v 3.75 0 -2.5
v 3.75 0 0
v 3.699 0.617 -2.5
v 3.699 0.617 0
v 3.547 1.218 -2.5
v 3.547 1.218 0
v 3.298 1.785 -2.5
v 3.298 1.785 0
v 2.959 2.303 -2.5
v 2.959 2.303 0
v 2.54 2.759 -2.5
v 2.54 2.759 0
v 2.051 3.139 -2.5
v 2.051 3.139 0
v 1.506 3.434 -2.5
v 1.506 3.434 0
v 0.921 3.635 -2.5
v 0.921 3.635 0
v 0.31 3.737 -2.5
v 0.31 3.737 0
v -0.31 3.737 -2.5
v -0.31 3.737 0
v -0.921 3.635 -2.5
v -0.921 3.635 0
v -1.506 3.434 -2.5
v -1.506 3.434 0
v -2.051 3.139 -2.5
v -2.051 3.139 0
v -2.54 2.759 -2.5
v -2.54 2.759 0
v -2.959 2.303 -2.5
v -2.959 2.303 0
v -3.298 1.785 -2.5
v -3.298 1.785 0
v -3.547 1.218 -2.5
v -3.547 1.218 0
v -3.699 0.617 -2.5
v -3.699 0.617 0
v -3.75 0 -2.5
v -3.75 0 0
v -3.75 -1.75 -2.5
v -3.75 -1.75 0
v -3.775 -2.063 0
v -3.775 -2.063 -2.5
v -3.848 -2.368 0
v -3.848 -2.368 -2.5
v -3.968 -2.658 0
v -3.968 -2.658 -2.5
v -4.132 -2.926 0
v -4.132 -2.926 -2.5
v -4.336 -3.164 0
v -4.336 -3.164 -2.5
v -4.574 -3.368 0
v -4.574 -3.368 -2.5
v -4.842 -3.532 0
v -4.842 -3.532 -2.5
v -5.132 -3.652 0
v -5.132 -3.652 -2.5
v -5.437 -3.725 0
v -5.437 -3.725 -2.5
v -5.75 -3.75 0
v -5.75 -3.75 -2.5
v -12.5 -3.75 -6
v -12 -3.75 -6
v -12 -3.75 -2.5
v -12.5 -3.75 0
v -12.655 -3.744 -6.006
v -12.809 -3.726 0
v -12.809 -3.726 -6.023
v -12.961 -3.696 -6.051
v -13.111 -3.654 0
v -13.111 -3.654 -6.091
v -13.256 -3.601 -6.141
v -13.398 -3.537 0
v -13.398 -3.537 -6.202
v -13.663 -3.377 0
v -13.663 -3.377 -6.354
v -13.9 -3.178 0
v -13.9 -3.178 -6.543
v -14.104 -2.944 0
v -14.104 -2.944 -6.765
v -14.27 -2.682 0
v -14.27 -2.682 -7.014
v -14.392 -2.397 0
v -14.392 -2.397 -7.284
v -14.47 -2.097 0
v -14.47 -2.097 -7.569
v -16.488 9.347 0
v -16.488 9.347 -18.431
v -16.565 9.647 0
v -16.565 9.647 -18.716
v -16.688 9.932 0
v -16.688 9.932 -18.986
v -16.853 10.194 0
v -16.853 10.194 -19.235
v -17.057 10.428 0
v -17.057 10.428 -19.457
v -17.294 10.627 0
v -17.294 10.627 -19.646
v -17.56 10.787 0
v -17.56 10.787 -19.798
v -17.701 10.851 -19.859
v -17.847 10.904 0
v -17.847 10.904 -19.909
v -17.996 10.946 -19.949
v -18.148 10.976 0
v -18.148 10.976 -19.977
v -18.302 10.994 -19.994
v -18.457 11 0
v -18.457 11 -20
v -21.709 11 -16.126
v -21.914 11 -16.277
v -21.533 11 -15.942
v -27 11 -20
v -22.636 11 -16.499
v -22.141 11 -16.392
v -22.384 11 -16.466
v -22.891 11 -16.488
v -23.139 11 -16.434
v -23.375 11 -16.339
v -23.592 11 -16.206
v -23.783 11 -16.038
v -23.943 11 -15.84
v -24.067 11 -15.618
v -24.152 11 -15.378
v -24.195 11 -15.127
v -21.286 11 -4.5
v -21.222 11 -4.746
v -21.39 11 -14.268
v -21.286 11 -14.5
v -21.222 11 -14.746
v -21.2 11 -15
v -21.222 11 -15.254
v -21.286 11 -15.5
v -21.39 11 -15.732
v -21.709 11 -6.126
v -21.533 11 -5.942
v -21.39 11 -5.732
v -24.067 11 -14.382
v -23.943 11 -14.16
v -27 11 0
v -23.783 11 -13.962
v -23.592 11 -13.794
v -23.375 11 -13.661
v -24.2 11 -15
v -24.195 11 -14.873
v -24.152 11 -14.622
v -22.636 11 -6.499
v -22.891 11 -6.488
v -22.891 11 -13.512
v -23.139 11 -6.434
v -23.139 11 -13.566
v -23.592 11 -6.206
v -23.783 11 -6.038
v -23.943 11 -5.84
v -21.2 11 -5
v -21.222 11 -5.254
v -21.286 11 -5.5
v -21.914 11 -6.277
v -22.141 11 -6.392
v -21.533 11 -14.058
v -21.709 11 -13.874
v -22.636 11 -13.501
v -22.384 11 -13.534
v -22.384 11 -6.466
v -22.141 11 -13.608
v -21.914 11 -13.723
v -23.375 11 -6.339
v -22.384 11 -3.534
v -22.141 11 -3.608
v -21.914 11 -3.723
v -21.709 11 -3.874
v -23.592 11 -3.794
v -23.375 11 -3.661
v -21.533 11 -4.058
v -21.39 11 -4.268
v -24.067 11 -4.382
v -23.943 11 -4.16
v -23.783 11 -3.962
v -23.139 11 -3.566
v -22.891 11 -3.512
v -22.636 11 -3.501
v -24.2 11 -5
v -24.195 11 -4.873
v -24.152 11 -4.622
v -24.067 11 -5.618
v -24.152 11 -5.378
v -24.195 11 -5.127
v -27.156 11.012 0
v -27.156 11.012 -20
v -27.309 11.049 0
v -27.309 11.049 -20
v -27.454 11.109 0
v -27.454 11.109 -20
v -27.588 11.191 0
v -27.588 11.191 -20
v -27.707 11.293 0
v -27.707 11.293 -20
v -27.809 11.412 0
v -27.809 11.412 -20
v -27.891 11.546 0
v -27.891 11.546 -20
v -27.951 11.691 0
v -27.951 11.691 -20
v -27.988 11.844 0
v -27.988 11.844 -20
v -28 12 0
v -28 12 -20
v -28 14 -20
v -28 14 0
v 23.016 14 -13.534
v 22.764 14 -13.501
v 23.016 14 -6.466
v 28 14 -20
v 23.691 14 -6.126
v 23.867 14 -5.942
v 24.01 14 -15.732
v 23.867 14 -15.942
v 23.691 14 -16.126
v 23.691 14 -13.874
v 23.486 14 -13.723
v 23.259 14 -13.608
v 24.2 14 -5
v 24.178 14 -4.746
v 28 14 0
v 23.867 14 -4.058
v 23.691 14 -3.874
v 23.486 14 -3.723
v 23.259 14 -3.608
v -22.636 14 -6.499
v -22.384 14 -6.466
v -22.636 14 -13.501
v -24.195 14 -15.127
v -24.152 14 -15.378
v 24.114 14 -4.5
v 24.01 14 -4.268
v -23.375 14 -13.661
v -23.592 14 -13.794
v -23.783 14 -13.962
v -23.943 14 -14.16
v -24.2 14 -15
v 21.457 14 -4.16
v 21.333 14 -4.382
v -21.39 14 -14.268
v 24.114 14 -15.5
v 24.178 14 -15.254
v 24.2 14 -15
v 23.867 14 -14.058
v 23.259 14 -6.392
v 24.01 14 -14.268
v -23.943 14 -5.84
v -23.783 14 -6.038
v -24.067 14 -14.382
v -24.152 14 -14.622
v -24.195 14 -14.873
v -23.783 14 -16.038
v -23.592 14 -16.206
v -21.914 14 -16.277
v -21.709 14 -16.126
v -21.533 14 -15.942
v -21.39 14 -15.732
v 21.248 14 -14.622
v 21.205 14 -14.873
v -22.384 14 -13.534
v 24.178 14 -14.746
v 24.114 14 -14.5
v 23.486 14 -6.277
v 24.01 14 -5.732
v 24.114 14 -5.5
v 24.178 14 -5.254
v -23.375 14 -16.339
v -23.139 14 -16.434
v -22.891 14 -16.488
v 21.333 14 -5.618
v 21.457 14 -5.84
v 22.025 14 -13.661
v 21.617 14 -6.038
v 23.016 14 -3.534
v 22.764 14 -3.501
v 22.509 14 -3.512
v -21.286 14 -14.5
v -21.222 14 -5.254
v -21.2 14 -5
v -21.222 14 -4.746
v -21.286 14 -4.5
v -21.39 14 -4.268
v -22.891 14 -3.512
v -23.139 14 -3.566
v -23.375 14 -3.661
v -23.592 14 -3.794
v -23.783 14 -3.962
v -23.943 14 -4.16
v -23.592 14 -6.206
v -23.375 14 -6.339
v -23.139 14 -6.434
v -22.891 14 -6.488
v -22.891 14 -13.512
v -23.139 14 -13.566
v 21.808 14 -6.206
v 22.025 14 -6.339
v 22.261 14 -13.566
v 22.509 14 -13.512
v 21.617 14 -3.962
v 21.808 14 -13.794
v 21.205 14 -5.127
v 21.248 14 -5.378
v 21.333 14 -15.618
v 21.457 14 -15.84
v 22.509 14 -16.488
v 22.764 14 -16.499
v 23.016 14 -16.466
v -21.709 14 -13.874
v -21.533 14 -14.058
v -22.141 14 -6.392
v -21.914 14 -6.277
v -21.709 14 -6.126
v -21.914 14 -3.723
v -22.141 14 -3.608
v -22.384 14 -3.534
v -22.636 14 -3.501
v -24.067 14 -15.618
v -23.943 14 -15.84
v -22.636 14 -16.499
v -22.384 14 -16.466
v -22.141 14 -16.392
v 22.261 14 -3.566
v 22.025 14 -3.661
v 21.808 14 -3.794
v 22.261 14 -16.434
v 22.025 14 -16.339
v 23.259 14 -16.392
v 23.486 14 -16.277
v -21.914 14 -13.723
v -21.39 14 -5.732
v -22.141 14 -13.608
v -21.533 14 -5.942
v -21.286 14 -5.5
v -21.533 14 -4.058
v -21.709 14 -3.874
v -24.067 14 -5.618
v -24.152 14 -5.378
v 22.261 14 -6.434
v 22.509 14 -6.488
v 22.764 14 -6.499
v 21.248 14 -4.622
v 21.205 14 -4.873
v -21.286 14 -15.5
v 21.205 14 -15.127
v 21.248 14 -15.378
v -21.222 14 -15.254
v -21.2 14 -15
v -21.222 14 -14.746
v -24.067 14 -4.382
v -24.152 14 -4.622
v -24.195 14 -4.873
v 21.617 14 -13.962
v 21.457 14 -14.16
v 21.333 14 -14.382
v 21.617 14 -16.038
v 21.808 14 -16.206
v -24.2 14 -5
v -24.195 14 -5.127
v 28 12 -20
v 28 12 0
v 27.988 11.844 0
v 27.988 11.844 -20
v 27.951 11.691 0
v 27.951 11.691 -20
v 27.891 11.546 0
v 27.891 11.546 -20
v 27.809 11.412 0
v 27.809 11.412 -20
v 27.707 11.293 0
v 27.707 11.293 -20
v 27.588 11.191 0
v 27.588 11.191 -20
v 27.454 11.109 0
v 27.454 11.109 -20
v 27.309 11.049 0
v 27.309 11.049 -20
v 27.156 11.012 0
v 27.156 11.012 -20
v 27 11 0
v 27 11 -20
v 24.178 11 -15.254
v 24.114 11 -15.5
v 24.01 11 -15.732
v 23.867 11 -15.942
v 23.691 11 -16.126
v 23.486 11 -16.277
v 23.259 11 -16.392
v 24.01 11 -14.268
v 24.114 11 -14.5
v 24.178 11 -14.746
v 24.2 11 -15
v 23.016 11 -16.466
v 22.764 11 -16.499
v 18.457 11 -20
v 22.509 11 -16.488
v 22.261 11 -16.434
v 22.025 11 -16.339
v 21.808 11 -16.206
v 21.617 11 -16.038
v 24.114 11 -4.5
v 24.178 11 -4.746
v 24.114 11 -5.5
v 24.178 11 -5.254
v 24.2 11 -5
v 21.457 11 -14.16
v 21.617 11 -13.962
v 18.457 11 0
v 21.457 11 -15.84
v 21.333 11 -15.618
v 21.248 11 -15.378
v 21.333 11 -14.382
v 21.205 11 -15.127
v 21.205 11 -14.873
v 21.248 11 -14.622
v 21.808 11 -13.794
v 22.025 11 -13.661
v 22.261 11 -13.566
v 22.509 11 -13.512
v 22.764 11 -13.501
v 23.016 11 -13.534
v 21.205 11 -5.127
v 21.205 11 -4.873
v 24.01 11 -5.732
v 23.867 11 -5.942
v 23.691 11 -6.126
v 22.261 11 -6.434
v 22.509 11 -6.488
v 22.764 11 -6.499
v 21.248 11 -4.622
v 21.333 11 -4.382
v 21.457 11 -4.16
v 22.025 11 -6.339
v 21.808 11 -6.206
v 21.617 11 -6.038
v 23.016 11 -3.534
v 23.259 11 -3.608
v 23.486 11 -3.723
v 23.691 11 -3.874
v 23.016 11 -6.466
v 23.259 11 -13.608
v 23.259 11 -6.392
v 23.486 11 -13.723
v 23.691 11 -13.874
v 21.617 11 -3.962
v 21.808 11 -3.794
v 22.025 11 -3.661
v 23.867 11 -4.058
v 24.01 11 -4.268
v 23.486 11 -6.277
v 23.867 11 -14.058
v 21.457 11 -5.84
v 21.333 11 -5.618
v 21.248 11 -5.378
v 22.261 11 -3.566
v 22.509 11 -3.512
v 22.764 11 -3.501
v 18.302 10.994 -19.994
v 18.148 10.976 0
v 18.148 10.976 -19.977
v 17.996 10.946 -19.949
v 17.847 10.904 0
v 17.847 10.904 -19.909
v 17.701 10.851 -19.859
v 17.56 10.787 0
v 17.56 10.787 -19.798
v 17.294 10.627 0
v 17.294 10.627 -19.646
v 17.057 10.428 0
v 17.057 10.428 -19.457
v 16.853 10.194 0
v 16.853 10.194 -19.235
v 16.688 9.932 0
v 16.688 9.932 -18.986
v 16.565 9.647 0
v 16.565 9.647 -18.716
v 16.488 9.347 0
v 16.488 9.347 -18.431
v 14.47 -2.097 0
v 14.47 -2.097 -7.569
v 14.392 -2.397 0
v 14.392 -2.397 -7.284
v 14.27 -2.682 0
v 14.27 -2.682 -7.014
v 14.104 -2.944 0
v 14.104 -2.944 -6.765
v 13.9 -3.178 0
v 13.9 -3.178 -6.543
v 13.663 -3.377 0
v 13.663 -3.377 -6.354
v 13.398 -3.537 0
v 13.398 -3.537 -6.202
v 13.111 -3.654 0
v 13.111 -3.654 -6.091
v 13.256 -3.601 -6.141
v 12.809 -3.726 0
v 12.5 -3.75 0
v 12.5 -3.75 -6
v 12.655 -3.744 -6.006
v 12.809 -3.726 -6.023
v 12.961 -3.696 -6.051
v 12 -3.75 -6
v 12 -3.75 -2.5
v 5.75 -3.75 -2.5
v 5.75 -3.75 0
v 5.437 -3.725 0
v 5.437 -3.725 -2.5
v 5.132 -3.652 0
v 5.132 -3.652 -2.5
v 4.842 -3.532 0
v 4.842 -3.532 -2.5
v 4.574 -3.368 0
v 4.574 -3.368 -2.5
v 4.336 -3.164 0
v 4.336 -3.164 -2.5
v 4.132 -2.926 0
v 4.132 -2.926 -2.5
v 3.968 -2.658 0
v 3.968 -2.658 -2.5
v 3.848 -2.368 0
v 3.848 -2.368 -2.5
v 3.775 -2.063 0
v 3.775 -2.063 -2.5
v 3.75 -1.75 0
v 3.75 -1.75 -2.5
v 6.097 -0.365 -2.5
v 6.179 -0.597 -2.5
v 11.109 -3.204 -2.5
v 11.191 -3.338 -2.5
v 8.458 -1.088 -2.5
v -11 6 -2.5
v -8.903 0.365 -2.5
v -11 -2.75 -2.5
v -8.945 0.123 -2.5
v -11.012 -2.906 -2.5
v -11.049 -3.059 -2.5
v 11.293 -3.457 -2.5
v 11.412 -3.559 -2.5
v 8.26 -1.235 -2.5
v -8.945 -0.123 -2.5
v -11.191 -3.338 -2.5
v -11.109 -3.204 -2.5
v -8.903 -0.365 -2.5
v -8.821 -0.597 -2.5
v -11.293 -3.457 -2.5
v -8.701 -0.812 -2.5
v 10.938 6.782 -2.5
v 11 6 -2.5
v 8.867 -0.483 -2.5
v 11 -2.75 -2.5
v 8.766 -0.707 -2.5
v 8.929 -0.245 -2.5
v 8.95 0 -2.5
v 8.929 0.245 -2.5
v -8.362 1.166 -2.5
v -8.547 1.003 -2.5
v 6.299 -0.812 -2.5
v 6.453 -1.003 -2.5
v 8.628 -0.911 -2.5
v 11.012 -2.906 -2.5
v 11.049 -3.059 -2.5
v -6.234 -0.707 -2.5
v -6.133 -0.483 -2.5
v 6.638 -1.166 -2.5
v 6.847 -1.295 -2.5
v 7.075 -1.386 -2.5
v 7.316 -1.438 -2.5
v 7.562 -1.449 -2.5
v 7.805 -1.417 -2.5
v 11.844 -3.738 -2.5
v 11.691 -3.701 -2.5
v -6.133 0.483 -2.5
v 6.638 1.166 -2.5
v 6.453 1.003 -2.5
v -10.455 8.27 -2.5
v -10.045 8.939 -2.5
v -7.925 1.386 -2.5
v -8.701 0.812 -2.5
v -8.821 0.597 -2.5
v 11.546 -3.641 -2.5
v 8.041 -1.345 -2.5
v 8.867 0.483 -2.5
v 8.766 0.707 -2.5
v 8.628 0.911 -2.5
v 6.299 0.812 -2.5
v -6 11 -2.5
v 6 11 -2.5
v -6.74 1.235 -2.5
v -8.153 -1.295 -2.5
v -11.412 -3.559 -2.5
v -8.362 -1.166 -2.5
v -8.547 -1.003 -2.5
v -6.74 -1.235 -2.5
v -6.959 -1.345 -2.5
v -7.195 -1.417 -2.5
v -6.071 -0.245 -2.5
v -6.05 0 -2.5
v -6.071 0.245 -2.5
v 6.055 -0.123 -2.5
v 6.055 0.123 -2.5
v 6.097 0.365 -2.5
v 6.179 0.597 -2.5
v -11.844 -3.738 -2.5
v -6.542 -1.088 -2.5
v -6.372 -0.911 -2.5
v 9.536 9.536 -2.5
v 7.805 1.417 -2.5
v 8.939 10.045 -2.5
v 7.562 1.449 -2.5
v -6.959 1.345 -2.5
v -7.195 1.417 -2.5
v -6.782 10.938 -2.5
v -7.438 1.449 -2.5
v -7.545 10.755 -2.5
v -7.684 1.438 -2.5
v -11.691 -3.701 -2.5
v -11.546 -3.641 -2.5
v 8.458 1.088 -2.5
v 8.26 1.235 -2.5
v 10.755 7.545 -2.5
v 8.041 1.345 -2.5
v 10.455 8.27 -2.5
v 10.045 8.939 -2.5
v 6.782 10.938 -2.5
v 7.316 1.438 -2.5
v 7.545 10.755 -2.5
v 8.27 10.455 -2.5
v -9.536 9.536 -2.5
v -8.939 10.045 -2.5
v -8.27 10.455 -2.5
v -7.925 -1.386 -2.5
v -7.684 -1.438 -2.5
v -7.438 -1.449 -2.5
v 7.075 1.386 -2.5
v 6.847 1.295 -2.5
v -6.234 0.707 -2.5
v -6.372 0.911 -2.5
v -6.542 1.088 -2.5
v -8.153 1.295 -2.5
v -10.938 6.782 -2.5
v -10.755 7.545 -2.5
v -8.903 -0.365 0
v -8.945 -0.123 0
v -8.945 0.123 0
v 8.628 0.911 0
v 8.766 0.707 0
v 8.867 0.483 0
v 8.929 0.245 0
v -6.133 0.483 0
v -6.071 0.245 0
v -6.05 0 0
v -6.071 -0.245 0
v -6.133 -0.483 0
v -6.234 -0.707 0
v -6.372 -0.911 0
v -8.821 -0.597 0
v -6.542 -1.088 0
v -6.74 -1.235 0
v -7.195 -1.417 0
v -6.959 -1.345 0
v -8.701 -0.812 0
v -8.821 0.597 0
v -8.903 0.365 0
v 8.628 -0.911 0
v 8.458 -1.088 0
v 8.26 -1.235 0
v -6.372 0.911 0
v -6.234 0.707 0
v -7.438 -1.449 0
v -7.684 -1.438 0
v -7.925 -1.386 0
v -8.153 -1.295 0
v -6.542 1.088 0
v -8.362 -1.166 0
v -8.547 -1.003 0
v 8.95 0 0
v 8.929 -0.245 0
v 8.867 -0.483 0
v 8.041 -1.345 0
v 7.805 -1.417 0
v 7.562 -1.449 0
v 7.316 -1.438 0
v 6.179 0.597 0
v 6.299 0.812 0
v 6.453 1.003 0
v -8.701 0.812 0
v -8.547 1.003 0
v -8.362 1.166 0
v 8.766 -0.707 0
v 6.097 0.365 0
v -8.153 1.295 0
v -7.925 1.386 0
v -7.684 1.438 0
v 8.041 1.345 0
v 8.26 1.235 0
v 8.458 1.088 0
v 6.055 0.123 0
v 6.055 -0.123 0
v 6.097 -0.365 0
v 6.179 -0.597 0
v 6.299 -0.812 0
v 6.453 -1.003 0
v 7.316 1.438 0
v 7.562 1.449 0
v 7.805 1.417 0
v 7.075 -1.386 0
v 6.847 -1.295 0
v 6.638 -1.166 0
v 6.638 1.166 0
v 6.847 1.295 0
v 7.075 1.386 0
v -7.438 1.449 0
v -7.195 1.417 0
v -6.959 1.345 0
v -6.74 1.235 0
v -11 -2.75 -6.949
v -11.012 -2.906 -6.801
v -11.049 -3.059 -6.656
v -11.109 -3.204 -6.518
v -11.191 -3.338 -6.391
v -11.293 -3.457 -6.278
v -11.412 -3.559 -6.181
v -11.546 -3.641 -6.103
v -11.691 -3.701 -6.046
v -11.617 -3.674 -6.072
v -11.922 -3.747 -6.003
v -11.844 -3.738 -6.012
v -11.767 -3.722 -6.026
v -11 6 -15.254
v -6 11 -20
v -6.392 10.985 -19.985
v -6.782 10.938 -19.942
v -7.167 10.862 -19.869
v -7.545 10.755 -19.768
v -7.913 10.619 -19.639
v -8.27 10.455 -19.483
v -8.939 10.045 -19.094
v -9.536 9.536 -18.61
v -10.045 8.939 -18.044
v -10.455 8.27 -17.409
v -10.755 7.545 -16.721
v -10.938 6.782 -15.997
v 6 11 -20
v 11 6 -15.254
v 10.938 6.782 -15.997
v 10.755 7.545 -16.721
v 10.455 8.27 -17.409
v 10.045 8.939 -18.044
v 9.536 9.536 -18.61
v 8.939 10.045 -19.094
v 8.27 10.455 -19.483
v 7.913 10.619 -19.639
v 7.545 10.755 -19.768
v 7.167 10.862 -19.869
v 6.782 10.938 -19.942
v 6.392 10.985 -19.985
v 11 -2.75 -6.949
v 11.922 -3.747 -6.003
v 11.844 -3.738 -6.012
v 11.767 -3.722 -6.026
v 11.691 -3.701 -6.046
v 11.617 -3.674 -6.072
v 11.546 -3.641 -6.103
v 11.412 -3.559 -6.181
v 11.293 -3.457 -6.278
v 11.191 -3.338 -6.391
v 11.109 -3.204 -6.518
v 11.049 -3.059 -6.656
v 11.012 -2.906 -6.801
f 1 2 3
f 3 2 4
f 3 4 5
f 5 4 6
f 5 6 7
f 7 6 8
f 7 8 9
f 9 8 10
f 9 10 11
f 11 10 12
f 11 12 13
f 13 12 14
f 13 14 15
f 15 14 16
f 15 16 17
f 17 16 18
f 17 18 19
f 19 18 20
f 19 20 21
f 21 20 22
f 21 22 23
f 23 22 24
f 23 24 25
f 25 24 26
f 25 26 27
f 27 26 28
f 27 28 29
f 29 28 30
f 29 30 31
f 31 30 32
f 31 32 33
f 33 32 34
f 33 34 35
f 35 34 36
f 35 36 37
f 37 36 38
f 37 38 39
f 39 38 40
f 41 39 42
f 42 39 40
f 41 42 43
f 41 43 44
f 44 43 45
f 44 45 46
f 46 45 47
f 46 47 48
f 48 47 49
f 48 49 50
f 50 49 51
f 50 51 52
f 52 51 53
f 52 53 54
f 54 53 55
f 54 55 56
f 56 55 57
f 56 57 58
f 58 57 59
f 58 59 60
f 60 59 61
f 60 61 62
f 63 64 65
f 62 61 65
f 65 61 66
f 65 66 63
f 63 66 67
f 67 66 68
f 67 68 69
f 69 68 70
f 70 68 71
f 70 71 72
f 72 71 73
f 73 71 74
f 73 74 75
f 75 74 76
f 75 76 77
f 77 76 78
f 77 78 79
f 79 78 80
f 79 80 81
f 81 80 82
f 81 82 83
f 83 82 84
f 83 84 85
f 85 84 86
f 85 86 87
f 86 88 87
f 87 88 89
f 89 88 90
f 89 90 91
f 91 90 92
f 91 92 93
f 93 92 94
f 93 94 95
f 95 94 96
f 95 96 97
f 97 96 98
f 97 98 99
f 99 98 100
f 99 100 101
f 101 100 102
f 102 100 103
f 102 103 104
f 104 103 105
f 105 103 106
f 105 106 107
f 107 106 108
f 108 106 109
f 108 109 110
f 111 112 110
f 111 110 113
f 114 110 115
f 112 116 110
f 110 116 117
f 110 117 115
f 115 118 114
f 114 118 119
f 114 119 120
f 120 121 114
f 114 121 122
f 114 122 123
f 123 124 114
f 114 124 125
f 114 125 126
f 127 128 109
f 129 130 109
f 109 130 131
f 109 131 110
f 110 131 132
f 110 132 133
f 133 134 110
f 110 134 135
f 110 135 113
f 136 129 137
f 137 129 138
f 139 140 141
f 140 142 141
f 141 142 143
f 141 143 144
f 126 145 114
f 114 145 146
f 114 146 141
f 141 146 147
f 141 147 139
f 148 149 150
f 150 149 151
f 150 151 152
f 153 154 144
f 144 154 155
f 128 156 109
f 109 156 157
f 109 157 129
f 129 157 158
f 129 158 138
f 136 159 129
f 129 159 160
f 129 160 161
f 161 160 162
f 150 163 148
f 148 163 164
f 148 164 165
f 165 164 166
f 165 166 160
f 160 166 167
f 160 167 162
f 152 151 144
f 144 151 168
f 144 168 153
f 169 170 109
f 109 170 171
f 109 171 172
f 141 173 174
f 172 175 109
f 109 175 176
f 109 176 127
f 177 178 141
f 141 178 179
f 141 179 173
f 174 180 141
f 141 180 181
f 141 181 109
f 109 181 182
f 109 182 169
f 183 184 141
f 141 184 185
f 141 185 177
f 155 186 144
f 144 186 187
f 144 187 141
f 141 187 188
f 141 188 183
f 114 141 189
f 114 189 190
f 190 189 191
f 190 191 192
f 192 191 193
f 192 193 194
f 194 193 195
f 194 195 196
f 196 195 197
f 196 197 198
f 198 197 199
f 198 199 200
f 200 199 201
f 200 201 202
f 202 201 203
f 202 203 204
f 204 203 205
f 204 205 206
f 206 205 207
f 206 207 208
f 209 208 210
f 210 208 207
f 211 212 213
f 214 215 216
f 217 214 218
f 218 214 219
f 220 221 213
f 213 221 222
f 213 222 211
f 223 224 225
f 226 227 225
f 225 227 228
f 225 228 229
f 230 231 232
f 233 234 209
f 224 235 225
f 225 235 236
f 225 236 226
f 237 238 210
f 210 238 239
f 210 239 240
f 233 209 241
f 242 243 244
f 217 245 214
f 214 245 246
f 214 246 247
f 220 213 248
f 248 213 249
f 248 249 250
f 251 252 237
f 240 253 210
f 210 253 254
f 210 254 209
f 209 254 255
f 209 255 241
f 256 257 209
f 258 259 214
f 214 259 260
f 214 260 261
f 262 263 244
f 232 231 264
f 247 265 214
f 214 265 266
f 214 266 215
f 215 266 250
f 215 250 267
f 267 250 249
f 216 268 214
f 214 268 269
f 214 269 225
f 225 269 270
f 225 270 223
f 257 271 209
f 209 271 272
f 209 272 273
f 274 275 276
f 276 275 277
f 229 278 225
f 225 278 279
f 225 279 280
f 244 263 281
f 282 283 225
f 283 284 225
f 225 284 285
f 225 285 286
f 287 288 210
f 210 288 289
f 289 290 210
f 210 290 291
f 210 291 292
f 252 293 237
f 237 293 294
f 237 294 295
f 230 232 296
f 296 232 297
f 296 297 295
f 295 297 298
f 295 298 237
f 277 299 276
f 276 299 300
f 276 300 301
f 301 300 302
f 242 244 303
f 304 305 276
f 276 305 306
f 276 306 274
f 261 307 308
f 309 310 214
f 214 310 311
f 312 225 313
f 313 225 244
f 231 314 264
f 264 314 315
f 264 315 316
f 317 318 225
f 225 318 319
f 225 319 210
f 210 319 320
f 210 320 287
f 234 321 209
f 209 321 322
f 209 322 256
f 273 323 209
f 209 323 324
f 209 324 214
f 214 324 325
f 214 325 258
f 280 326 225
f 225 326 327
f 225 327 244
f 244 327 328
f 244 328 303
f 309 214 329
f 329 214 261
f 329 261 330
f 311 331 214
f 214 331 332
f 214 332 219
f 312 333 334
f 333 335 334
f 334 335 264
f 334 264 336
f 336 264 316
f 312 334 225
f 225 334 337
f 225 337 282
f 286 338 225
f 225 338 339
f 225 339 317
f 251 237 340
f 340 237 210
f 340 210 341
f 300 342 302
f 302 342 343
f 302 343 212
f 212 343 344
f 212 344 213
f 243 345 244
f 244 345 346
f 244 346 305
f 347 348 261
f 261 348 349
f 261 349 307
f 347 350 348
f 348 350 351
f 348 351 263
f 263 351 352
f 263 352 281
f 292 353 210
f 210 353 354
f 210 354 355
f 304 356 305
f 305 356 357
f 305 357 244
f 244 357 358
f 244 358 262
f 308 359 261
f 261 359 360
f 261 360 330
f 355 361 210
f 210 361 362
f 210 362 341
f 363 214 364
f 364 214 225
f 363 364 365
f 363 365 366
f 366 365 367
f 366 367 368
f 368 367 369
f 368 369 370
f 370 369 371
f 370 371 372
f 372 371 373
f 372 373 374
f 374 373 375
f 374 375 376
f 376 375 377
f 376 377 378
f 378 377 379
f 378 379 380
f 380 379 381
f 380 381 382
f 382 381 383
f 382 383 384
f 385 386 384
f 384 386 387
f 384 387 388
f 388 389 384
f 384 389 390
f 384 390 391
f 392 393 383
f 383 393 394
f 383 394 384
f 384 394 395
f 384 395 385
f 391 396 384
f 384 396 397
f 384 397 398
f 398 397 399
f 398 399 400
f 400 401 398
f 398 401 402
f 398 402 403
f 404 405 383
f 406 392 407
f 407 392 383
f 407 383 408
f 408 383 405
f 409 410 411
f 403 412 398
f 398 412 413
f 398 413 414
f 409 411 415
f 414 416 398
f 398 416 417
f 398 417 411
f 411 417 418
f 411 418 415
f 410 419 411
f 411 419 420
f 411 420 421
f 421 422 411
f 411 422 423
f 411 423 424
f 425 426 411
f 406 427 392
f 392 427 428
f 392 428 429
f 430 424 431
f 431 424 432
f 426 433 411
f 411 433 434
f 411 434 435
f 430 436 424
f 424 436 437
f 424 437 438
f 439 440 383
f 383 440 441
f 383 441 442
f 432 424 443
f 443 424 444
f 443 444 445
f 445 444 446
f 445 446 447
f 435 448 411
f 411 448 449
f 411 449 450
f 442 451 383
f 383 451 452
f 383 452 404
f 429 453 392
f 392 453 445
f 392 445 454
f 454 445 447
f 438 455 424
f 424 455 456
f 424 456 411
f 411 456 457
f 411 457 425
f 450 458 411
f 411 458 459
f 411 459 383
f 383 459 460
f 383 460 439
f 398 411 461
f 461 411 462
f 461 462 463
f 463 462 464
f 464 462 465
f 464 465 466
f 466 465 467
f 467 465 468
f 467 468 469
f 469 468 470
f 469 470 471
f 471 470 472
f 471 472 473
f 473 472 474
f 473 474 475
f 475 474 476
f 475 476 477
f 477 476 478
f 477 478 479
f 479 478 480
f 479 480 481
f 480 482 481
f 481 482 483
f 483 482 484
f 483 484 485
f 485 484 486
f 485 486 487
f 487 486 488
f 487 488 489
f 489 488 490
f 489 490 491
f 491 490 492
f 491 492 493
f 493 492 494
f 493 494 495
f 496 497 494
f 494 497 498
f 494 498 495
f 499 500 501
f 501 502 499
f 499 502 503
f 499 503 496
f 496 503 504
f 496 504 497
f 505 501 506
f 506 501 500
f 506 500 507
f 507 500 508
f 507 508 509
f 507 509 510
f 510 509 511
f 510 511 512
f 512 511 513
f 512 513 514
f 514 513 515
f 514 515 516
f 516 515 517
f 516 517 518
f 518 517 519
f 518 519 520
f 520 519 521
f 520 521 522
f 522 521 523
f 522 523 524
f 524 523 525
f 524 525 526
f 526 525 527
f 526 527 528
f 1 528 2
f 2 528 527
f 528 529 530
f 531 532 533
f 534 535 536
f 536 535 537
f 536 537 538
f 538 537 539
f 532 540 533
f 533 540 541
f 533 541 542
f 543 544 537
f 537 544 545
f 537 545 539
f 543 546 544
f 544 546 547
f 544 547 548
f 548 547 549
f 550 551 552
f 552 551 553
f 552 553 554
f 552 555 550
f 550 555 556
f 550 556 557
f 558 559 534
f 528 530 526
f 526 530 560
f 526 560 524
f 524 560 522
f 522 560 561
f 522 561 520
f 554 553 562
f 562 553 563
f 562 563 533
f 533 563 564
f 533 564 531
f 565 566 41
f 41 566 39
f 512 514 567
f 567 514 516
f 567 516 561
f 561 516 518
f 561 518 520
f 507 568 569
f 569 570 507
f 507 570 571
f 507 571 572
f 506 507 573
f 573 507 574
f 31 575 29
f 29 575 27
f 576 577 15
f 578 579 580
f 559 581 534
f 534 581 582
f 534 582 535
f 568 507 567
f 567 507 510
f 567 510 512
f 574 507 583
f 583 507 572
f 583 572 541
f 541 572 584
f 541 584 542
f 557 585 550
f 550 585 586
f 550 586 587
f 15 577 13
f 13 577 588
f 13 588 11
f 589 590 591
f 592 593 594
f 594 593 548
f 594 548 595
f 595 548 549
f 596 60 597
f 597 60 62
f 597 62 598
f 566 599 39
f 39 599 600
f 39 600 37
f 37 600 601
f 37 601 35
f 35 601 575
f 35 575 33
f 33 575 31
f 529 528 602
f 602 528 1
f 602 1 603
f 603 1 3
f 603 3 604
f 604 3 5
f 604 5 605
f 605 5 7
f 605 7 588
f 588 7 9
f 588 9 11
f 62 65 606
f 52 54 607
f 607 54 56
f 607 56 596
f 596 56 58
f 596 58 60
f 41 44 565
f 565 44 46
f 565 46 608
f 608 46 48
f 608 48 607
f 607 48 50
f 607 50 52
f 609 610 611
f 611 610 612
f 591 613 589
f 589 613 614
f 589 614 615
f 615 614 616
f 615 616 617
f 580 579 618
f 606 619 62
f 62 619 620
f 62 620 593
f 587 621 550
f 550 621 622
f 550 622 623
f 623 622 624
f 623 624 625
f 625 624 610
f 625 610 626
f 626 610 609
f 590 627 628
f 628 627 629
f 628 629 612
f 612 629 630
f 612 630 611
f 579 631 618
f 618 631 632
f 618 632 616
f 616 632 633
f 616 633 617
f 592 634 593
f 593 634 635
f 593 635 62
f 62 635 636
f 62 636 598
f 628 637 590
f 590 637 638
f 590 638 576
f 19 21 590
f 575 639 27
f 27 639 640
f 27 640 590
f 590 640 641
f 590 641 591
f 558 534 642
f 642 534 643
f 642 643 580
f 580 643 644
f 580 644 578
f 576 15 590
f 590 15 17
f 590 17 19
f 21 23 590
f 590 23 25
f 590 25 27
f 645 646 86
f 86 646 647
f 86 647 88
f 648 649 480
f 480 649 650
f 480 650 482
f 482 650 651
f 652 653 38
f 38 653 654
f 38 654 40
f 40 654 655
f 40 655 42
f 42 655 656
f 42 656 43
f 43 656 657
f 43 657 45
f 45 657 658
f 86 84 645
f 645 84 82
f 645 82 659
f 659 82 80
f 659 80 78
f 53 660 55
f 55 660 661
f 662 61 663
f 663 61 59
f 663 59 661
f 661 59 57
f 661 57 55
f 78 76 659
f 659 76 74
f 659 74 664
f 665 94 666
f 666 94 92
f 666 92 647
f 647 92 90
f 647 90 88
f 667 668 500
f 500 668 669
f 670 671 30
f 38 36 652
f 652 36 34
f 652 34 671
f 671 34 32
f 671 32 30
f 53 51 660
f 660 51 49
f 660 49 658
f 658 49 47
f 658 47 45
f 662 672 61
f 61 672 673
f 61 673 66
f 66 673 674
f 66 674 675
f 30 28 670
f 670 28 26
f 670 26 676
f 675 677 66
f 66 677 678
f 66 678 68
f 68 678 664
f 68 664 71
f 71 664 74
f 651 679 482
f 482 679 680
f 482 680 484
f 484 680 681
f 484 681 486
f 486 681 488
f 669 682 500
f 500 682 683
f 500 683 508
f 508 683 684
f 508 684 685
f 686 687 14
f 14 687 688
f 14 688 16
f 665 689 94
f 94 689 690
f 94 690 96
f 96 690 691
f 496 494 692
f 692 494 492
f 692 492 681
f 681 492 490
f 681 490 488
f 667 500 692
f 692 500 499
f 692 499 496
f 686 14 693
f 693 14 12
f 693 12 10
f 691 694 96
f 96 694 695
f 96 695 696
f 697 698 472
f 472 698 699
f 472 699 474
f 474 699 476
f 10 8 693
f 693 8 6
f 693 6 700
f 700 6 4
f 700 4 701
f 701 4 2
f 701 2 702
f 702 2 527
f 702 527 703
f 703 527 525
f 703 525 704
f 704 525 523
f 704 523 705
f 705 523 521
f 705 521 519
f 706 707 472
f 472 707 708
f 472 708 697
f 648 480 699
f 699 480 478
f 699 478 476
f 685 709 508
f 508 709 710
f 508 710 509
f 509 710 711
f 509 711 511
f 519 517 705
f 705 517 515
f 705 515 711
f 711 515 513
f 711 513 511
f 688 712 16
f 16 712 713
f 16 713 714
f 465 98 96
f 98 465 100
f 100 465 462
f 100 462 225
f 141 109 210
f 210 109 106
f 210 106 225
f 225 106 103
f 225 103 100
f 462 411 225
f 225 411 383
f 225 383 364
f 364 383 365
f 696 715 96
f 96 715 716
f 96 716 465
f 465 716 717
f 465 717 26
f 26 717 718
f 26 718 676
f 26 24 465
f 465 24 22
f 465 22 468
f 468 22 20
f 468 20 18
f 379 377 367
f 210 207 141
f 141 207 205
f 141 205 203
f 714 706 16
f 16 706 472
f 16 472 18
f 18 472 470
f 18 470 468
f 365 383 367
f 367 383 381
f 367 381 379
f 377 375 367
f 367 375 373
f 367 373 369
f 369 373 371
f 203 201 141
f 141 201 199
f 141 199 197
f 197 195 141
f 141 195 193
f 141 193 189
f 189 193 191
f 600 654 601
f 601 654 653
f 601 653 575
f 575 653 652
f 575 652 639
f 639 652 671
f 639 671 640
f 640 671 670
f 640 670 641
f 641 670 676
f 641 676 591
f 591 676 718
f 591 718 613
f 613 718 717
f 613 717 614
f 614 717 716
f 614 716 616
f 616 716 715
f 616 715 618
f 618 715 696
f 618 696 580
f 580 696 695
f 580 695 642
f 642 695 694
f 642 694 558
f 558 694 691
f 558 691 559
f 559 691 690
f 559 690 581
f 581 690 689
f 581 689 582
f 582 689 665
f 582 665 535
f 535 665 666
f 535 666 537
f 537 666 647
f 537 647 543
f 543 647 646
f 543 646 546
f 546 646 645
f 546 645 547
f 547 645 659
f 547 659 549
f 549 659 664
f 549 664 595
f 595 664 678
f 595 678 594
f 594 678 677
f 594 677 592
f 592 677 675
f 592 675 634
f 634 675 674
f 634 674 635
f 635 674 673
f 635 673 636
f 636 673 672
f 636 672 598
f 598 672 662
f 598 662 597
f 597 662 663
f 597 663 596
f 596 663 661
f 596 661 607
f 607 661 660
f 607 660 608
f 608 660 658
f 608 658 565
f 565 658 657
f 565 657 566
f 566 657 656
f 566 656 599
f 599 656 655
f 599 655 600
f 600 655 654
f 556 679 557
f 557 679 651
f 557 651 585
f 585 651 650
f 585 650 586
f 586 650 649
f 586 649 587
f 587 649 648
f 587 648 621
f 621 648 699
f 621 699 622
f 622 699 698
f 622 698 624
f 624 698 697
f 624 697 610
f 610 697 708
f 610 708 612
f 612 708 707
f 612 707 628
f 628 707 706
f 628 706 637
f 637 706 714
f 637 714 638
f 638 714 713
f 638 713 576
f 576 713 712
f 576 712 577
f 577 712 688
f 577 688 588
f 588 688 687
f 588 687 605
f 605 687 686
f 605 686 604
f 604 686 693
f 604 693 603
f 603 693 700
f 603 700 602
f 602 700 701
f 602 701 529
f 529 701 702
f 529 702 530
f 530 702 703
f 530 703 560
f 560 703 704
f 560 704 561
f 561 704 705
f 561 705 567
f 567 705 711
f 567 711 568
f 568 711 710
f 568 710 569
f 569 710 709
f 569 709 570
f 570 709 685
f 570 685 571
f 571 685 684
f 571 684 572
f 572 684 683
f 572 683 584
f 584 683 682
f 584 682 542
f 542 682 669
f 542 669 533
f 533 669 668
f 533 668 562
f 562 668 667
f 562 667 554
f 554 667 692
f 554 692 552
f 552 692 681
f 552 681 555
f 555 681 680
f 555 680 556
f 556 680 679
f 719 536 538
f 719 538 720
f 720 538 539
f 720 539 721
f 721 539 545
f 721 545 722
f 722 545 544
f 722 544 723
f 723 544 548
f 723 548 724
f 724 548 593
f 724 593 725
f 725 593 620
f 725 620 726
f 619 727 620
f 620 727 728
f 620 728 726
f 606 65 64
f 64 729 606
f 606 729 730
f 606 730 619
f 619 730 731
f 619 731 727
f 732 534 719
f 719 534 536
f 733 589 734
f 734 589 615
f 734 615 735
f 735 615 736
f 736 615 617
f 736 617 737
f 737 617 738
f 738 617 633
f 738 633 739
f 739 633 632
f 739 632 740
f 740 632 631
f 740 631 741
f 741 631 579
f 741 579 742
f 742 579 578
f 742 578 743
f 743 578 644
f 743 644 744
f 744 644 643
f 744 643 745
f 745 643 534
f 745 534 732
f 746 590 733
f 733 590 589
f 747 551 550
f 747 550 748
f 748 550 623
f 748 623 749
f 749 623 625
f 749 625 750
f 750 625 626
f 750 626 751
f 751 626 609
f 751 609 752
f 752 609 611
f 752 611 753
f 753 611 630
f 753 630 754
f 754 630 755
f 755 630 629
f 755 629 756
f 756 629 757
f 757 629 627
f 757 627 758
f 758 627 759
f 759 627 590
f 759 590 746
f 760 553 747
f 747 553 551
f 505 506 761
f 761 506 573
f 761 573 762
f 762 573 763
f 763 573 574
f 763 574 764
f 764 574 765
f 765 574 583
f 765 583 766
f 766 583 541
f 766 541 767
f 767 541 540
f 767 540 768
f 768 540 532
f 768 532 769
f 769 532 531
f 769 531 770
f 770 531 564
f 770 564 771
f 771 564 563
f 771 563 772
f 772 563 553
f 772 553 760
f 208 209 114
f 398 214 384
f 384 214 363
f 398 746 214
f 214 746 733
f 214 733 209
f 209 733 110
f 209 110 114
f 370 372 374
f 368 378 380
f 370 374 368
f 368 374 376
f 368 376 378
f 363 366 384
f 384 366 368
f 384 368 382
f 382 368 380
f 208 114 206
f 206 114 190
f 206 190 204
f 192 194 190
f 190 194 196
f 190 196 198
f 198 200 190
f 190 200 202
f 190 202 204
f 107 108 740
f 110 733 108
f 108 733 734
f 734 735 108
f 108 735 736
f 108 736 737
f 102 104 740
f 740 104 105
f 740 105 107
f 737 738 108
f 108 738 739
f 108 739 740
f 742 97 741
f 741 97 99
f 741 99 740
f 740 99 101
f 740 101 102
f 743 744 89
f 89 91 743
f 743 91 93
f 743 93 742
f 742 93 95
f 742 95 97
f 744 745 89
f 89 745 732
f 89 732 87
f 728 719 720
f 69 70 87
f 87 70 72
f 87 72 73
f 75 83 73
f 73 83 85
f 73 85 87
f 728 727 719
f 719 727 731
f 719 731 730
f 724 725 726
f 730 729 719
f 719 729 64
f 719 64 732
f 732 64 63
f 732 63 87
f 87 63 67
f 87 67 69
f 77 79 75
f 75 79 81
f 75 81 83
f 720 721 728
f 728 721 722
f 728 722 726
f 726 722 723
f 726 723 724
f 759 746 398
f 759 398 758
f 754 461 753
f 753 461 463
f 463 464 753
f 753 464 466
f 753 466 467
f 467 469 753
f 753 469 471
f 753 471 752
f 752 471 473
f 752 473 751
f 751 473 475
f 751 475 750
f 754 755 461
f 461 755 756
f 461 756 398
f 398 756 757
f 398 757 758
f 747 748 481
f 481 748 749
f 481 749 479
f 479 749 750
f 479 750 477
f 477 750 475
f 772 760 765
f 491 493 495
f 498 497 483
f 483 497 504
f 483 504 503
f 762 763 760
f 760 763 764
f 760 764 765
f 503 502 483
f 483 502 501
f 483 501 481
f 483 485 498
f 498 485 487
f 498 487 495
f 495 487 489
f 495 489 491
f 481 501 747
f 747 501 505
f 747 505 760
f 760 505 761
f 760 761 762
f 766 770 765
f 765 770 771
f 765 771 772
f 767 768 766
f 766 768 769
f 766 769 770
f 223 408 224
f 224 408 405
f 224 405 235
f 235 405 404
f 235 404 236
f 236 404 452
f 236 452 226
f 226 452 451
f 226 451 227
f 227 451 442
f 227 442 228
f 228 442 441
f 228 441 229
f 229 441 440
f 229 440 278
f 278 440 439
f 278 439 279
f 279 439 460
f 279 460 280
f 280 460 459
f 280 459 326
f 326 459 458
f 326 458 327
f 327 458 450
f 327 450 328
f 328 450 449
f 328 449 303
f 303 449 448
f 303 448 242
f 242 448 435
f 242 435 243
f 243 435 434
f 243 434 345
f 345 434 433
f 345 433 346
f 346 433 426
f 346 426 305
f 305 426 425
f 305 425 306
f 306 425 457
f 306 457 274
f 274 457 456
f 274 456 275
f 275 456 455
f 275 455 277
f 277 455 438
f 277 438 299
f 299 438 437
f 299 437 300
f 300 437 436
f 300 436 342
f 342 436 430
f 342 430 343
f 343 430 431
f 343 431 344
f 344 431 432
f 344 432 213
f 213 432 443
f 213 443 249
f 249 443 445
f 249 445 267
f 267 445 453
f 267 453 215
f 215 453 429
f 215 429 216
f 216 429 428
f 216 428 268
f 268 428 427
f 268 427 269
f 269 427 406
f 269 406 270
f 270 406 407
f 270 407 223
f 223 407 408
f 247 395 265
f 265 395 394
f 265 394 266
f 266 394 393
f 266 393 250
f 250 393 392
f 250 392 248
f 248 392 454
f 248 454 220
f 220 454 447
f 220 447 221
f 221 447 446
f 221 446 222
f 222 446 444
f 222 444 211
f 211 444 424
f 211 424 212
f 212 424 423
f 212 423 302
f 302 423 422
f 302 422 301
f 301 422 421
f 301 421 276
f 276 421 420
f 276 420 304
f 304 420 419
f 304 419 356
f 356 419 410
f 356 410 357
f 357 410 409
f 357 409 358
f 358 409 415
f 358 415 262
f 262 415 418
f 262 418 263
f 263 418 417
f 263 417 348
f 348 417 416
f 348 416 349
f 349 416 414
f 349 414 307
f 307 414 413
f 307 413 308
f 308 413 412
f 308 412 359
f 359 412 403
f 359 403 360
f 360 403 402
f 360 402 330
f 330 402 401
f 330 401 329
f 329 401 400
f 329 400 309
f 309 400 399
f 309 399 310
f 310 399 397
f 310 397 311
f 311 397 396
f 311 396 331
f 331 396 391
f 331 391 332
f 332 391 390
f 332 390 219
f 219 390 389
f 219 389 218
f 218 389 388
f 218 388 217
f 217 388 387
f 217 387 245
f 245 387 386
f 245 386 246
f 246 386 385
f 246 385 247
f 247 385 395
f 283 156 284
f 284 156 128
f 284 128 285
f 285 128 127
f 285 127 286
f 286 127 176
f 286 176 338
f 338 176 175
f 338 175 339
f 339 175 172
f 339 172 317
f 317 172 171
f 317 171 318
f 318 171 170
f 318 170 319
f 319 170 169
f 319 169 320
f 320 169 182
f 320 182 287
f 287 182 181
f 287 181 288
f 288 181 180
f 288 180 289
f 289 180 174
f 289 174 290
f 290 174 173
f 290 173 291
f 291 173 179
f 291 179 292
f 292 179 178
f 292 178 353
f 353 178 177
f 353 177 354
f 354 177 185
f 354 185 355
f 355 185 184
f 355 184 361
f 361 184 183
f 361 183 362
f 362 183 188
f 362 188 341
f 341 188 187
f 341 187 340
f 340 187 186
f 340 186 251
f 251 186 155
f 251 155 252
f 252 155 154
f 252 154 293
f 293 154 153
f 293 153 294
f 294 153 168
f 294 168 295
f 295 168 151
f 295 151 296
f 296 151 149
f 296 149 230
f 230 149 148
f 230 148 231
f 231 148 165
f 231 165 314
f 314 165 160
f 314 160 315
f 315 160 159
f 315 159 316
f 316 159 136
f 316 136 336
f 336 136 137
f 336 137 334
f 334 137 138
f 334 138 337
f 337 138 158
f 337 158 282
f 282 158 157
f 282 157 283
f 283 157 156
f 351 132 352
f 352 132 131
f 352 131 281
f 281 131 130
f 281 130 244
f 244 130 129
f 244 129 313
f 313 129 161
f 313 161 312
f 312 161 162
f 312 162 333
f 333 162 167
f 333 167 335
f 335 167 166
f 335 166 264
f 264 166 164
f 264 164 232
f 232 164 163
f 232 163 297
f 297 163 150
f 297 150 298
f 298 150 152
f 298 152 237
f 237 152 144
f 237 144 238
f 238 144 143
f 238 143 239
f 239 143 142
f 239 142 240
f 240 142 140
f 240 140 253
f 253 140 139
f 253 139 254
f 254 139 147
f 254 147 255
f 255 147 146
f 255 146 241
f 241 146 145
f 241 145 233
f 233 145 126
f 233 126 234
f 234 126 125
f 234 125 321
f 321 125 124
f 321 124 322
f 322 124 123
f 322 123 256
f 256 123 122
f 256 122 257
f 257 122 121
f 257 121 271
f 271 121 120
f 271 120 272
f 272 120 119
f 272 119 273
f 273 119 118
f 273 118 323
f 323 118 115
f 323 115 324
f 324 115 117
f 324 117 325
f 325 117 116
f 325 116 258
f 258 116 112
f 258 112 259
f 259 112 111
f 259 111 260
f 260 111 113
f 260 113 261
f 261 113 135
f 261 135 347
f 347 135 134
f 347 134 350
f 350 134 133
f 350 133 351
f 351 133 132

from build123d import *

# Parameters (mm, degrees)
SKETCH2_R               = 1.45
BOSS_EXTRUDE1_DEPTH     = 2.5
BOSS_EXTRUDE2_DEPTH     = 17.5
CUT_EXTRUDE1_DEPTH      = 38.148351242
CUT_EXTRUDE1_DEPTH_BACK = 38.148351242
SKETCH9_R               = 1.5
CUT_EXTRUDE2_DEPTH      = 38.43744783


with BuildPart() as part:
    # Sketch2 → Boss-Extrude1 (new body)
    with BuildSketch(Plane.XY):
        with BuildLine():
            Line((-3.75, 0), (-3.75, -1.75))
            ThreePointArc((-3.75, -1.75), (-4.335786438, -3.164213562), (-5.75, -3.75))
            Line((-5.75, -3.75), (-12.5, -3.75))
            ThreePointArc((-12.5, -3.75), (-13.785575219, -3.282088886), (-14.469615506, -2.097296355))
            Line((-14.469615506, -2.097296355), (-16.487605984, 9.347296355))
            ThreePointArc((-16.487605984, 9.347296355), (-17.171646271, 10.532088886), (-18.45722149, 11))
            Line((-18.45722149, 11), (-27, 11))
            ThreePointArc((-27, 11), (-27.707106781, 11.292893219), (-28, 12))
            Line((-28, 12), (-28, 14))
            Line((-28, 14), (28, 14))
            Line((28, 14), (28, 12))
            ThreePointArc((28, 12), (27.707106781, 11.292893219), (27, 11))
            Line((27, 11), (18.45722149, 11))
            ThreePointArc((18.45722149, 11), (17.171646271, 10.532088886), (16.487605984, 9.347296355))
            Line((16.487605984, 9.347296355), (14.469615506, -2.097296355))
            ThreePointArc((14.469615506, -2.097296355), (13.785575219, -3.282088886), (12.5, -3.75))
            Line((12.5, -3.75), (5.75, -3.75))
            ThreePointArc((5.75, -3.75), (4.335786438, -3.164213562), (3.75, -1.75))
            Line((3.75, -1.75), (3.75, 0))
            ThreePointArc((3.75, 0), (0, 3.75), (-3.75, 0))
        make_face()
        with Locations((-7.5, 0)):
            Circle(SKETCH2_R, mode=Mode.SUBTRACT)
        with Locations((7.5, 0)):
            Circle(SKETCH2_R, mode=Mode.SUBTRACT)
    extrude(amount=-BOSS_EXTRUDE1_DEPTH)

    # Sketch3 → Boss-Extrude2 (add)
    with BuildSketch(Plane(origin=(0, 0, -2.5), x_dir=(-1, 0, 0), z_dir=(0, 0, -1))):
        with BuildLine():
            Line((-11, -2.75), (-11, 6))
            ThreePointArc((-11, 6), (-9.535533906, 9.535533906), (-6, 11))
            Line((-6, 11), (6, 11))
            ThreePointArc((6, 11), (9.535533906, 9.535533906), (11, 6))
            Line((11, 6), (11, -2.75))
            ThreePointArc((11, -2.75), (11.292893219, -3.457106781), (12, -3.75))
            Line((12, -3.75), (12.5, -3.75))
            ThreePointArc((12.5, -3.75), (13.785575219, -3.282088886), (14.469615506, -2.097296355))
            Line((14.469615506, -2.097296355), (16.487605984, 9.347296355))
            ThreePointArc((16.487605984, 9.347296355), (17.171646271, 10.532088886), (18.45722149, 11))
            Line((18.45722149, 11), (27, 11))
            ThreePointArc((27, 11), (27.707106781, 11.292893219), (28, 12))
            Line((28, 12), (28, 14))
            Line((28, 14), (-28, 14))
            Line((-28, 14), (-28, 12))
            ThreePointArc((-28, 12), (-27.707106781, 11.292893219), (-27, 11))
            Line((-27, 11), (-18.45722149, 11))
            ThreePointArc((-18.45722149, 11), (-17.171646271, 10.532088886), (-16.487605984, 9.347296355))
            Line((-16.487605984, 9.347296355), (-14.469615506, -2.097296355))
            ThreePointArc((-14.469615506, -2.097296355), (-13.785575219, -3.282088886), (-12.5, -3.75))
            Line((-12.5, -3.75), (-12, -3.75))
            ThreePointArc((-12, -3.75), (-11.292893219, -3.457106781), (-11, -2.75))
        make_face()
    extrude(amount=BOSS_EXTRUDE2_DEPTH)

    # Sketch6 → Cut-Extrude1 (cut, two sides: drawn at the far end of the back side and taken through both)
    with BuildSketch(Plane(origin=(0, 0, 0), x_dir=(0, 0, -1), z_dir=(1, 0, 0)).offset(-CUT_EXTRUDE1_DEPTH_BACK)):
        Polygon((6, -3.75), (20, 11), (20, -3.75), align=None)
    extrude(amount=CUT_EXTRUDE1_DEPTH + CUT_EXTRUDE1_DEPTH_BACK, mode=Mode.SUBTRACT)

    # Sketch9 → Cut-Extrude2 (cut, through all)
    with BuildSketch(Plane.XZ.offset(-11)):
        with Locations((22.7, -15)):
            Circle(SKETCH9_R)
        with Locations((22.7, -5)):
            Circle(SKETCH9_R)
    cut_extrude2 = extrude(amount=-CUT_EXTRUDE2_DEPTH, mode=Mode.SUBTRACT)

    # Mirror1: Cut-Extrude2 across plane
    add(cut_extrude2.mirror(Plane(origin=(0, 0, 0), x_dir=(0, 0, 1), z_dir=(1, 0, 0))), mode=Mode.SUBTRACT)


solid = part.part
